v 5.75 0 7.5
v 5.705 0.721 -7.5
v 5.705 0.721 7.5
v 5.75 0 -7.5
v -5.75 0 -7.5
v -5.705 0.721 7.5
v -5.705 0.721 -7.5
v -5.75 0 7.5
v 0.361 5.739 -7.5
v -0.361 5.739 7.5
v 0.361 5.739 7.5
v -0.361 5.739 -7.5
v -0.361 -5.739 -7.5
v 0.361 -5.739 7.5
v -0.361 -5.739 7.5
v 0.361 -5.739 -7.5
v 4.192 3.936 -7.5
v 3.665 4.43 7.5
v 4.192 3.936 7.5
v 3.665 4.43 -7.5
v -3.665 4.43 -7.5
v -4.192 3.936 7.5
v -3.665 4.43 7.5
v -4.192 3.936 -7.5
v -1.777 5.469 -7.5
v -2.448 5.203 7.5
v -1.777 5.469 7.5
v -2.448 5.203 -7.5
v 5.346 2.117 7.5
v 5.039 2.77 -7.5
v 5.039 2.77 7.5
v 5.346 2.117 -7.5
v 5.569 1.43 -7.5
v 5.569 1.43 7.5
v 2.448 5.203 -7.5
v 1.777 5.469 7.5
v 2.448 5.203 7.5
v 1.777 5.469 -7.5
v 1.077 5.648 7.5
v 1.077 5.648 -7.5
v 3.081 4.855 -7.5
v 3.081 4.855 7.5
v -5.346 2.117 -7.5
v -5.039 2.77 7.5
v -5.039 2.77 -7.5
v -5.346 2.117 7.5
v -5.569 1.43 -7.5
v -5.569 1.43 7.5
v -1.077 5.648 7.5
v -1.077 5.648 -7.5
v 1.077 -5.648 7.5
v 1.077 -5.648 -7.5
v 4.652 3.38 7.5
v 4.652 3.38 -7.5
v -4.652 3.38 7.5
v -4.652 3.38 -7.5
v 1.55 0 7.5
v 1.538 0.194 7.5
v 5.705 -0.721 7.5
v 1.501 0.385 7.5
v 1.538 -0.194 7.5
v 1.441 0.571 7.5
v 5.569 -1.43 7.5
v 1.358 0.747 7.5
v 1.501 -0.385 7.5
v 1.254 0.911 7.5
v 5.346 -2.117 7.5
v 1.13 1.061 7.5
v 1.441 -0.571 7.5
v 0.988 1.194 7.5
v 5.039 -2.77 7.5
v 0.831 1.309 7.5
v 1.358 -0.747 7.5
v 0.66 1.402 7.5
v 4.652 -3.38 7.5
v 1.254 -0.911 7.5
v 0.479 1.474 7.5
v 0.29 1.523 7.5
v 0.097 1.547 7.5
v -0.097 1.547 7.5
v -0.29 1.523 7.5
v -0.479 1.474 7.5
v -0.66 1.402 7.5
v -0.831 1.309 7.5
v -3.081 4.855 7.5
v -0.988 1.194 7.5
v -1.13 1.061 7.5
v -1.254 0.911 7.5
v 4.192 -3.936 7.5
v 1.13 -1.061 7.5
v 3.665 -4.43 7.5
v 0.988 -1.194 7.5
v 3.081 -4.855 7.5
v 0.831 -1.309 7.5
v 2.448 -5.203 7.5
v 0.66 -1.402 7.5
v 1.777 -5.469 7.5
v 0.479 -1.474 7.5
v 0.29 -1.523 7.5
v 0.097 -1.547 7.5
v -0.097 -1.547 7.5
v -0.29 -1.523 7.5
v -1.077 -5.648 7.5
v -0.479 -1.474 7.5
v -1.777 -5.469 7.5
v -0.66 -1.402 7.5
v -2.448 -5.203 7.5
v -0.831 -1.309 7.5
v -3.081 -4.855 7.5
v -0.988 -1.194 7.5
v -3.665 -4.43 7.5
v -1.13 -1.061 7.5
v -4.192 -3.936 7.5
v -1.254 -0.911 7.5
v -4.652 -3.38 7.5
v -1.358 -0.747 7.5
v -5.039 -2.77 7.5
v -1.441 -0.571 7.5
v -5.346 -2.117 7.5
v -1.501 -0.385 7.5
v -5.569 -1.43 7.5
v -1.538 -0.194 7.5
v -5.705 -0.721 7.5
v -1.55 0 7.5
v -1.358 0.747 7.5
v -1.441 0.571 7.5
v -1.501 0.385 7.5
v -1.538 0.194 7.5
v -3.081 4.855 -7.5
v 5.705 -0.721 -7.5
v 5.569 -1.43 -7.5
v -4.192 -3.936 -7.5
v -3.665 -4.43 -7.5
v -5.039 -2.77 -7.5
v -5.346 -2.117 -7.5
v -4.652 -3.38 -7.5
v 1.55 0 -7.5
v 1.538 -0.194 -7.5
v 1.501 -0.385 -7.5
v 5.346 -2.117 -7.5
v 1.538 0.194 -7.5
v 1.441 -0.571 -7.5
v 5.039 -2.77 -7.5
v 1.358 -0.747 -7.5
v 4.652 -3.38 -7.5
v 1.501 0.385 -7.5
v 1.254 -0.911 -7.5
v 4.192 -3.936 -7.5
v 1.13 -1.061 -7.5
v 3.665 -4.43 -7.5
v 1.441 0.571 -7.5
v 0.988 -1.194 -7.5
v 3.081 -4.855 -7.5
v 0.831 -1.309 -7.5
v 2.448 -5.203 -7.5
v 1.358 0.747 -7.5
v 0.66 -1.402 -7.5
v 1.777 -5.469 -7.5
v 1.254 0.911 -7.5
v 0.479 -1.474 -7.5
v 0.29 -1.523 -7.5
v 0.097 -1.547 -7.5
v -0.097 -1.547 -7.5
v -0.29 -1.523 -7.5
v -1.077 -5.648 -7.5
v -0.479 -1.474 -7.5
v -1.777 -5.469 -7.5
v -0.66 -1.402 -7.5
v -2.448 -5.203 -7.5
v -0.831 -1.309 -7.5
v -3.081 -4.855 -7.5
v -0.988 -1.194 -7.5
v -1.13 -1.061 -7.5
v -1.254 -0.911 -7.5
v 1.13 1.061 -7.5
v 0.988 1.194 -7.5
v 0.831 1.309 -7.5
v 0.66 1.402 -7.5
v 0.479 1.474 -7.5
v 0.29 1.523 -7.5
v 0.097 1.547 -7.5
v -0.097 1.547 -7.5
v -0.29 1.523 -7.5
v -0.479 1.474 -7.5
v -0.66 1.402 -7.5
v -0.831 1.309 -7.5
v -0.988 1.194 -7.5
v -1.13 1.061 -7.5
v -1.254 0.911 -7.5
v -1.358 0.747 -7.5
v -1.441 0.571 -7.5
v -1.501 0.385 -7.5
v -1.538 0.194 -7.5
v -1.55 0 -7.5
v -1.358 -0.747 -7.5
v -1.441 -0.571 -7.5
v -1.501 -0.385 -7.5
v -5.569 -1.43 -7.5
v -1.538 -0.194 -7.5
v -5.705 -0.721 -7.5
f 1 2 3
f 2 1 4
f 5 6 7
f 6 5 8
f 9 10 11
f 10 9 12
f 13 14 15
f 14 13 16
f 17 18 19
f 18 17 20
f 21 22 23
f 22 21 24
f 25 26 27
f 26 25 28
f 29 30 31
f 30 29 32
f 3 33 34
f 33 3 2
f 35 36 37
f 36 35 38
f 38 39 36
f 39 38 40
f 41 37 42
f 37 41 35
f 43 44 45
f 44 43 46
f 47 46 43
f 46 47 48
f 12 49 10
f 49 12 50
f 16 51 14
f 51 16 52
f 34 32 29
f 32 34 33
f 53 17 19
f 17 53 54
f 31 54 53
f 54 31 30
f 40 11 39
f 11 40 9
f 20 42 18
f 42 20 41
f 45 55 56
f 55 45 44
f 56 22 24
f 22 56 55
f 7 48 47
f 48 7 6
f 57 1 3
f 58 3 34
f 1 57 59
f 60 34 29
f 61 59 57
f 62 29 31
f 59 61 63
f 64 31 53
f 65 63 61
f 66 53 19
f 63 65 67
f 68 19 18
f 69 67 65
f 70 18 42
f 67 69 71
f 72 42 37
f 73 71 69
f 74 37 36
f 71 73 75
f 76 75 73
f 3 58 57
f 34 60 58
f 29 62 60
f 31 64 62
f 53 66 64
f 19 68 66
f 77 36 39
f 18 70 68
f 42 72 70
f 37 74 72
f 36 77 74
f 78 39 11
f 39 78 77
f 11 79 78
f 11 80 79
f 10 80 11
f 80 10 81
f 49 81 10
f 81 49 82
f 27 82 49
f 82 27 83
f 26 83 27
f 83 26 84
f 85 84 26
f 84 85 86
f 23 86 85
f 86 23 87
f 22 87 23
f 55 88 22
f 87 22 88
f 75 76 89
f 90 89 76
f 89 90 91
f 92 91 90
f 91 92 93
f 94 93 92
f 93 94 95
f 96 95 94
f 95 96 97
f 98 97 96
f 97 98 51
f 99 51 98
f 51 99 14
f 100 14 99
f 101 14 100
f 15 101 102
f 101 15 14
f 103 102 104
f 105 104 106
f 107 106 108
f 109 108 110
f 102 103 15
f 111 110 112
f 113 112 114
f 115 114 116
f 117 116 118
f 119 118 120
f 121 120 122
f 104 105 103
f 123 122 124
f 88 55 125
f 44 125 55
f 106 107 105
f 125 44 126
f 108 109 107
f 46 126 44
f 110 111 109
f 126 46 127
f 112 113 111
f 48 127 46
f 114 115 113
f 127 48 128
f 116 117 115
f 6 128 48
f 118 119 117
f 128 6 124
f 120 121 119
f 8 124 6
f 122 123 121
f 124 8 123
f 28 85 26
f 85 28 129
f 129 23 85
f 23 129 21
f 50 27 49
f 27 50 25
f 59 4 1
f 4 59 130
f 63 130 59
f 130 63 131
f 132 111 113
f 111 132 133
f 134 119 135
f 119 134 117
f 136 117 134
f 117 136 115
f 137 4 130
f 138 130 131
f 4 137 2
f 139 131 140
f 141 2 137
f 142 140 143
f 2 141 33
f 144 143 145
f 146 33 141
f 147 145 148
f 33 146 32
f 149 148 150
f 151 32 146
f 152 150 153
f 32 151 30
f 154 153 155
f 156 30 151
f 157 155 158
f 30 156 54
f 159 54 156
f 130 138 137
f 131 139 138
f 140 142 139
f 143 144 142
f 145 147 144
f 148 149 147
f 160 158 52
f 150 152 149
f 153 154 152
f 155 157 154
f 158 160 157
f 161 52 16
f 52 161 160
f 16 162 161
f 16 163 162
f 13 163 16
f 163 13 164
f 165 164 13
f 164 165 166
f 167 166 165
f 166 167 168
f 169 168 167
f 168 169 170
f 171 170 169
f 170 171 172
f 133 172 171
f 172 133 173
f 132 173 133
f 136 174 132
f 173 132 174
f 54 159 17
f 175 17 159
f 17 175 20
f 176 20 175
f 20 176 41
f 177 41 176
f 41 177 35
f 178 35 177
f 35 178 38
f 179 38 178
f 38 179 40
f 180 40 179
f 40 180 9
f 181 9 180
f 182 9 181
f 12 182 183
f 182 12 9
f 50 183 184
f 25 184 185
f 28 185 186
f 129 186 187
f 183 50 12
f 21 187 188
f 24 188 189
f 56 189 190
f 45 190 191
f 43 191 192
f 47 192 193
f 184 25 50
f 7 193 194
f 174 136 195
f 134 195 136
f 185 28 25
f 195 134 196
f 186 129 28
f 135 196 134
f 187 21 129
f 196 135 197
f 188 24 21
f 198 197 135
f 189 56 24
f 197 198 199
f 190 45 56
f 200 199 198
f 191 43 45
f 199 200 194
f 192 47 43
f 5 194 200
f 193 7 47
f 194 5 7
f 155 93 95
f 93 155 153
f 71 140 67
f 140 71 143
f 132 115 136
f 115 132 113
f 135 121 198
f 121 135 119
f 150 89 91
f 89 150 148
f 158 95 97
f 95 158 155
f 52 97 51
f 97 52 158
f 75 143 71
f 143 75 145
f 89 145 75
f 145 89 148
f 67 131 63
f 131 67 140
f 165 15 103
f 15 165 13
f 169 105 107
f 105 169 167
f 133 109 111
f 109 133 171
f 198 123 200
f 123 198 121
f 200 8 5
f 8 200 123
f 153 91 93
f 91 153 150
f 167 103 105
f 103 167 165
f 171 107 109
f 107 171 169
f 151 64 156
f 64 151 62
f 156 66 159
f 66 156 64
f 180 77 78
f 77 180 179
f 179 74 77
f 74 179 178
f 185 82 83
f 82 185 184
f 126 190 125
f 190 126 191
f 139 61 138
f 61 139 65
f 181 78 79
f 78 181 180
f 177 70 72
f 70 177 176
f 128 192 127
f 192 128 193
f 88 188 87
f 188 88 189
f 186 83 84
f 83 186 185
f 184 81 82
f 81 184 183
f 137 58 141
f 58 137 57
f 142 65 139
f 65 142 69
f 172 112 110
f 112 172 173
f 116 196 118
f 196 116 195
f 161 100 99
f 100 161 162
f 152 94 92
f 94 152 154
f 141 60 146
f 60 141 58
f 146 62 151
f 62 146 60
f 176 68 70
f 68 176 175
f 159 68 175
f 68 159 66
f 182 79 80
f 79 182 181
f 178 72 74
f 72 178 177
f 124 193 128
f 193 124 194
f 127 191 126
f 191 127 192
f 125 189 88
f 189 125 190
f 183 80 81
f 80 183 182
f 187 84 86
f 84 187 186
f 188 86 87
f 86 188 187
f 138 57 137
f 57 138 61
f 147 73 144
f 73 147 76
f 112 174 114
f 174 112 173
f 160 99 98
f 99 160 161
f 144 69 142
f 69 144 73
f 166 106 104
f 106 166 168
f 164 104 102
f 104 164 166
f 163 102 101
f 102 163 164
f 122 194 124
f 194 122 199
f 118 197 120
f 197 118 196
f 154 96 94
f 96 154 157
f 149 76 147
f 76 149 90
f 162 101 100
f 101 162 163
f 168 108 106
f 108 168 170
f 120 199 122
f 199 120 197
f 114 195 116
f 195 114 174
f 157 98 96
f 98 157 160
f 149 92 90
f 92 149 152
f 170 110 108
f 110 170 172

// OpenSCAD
$fn = 50;


difference() {
	union() {
		translate(v = [0, 0, -7.5000000000]) {
			cylinder(h = 15, r = 5.7500000000);
		}
	}
	union() {
		translate(v = [0, 0, -100.0000000000]) {
			cylinder(h = 200, r = 1.5500000000);
		}
	}
}
